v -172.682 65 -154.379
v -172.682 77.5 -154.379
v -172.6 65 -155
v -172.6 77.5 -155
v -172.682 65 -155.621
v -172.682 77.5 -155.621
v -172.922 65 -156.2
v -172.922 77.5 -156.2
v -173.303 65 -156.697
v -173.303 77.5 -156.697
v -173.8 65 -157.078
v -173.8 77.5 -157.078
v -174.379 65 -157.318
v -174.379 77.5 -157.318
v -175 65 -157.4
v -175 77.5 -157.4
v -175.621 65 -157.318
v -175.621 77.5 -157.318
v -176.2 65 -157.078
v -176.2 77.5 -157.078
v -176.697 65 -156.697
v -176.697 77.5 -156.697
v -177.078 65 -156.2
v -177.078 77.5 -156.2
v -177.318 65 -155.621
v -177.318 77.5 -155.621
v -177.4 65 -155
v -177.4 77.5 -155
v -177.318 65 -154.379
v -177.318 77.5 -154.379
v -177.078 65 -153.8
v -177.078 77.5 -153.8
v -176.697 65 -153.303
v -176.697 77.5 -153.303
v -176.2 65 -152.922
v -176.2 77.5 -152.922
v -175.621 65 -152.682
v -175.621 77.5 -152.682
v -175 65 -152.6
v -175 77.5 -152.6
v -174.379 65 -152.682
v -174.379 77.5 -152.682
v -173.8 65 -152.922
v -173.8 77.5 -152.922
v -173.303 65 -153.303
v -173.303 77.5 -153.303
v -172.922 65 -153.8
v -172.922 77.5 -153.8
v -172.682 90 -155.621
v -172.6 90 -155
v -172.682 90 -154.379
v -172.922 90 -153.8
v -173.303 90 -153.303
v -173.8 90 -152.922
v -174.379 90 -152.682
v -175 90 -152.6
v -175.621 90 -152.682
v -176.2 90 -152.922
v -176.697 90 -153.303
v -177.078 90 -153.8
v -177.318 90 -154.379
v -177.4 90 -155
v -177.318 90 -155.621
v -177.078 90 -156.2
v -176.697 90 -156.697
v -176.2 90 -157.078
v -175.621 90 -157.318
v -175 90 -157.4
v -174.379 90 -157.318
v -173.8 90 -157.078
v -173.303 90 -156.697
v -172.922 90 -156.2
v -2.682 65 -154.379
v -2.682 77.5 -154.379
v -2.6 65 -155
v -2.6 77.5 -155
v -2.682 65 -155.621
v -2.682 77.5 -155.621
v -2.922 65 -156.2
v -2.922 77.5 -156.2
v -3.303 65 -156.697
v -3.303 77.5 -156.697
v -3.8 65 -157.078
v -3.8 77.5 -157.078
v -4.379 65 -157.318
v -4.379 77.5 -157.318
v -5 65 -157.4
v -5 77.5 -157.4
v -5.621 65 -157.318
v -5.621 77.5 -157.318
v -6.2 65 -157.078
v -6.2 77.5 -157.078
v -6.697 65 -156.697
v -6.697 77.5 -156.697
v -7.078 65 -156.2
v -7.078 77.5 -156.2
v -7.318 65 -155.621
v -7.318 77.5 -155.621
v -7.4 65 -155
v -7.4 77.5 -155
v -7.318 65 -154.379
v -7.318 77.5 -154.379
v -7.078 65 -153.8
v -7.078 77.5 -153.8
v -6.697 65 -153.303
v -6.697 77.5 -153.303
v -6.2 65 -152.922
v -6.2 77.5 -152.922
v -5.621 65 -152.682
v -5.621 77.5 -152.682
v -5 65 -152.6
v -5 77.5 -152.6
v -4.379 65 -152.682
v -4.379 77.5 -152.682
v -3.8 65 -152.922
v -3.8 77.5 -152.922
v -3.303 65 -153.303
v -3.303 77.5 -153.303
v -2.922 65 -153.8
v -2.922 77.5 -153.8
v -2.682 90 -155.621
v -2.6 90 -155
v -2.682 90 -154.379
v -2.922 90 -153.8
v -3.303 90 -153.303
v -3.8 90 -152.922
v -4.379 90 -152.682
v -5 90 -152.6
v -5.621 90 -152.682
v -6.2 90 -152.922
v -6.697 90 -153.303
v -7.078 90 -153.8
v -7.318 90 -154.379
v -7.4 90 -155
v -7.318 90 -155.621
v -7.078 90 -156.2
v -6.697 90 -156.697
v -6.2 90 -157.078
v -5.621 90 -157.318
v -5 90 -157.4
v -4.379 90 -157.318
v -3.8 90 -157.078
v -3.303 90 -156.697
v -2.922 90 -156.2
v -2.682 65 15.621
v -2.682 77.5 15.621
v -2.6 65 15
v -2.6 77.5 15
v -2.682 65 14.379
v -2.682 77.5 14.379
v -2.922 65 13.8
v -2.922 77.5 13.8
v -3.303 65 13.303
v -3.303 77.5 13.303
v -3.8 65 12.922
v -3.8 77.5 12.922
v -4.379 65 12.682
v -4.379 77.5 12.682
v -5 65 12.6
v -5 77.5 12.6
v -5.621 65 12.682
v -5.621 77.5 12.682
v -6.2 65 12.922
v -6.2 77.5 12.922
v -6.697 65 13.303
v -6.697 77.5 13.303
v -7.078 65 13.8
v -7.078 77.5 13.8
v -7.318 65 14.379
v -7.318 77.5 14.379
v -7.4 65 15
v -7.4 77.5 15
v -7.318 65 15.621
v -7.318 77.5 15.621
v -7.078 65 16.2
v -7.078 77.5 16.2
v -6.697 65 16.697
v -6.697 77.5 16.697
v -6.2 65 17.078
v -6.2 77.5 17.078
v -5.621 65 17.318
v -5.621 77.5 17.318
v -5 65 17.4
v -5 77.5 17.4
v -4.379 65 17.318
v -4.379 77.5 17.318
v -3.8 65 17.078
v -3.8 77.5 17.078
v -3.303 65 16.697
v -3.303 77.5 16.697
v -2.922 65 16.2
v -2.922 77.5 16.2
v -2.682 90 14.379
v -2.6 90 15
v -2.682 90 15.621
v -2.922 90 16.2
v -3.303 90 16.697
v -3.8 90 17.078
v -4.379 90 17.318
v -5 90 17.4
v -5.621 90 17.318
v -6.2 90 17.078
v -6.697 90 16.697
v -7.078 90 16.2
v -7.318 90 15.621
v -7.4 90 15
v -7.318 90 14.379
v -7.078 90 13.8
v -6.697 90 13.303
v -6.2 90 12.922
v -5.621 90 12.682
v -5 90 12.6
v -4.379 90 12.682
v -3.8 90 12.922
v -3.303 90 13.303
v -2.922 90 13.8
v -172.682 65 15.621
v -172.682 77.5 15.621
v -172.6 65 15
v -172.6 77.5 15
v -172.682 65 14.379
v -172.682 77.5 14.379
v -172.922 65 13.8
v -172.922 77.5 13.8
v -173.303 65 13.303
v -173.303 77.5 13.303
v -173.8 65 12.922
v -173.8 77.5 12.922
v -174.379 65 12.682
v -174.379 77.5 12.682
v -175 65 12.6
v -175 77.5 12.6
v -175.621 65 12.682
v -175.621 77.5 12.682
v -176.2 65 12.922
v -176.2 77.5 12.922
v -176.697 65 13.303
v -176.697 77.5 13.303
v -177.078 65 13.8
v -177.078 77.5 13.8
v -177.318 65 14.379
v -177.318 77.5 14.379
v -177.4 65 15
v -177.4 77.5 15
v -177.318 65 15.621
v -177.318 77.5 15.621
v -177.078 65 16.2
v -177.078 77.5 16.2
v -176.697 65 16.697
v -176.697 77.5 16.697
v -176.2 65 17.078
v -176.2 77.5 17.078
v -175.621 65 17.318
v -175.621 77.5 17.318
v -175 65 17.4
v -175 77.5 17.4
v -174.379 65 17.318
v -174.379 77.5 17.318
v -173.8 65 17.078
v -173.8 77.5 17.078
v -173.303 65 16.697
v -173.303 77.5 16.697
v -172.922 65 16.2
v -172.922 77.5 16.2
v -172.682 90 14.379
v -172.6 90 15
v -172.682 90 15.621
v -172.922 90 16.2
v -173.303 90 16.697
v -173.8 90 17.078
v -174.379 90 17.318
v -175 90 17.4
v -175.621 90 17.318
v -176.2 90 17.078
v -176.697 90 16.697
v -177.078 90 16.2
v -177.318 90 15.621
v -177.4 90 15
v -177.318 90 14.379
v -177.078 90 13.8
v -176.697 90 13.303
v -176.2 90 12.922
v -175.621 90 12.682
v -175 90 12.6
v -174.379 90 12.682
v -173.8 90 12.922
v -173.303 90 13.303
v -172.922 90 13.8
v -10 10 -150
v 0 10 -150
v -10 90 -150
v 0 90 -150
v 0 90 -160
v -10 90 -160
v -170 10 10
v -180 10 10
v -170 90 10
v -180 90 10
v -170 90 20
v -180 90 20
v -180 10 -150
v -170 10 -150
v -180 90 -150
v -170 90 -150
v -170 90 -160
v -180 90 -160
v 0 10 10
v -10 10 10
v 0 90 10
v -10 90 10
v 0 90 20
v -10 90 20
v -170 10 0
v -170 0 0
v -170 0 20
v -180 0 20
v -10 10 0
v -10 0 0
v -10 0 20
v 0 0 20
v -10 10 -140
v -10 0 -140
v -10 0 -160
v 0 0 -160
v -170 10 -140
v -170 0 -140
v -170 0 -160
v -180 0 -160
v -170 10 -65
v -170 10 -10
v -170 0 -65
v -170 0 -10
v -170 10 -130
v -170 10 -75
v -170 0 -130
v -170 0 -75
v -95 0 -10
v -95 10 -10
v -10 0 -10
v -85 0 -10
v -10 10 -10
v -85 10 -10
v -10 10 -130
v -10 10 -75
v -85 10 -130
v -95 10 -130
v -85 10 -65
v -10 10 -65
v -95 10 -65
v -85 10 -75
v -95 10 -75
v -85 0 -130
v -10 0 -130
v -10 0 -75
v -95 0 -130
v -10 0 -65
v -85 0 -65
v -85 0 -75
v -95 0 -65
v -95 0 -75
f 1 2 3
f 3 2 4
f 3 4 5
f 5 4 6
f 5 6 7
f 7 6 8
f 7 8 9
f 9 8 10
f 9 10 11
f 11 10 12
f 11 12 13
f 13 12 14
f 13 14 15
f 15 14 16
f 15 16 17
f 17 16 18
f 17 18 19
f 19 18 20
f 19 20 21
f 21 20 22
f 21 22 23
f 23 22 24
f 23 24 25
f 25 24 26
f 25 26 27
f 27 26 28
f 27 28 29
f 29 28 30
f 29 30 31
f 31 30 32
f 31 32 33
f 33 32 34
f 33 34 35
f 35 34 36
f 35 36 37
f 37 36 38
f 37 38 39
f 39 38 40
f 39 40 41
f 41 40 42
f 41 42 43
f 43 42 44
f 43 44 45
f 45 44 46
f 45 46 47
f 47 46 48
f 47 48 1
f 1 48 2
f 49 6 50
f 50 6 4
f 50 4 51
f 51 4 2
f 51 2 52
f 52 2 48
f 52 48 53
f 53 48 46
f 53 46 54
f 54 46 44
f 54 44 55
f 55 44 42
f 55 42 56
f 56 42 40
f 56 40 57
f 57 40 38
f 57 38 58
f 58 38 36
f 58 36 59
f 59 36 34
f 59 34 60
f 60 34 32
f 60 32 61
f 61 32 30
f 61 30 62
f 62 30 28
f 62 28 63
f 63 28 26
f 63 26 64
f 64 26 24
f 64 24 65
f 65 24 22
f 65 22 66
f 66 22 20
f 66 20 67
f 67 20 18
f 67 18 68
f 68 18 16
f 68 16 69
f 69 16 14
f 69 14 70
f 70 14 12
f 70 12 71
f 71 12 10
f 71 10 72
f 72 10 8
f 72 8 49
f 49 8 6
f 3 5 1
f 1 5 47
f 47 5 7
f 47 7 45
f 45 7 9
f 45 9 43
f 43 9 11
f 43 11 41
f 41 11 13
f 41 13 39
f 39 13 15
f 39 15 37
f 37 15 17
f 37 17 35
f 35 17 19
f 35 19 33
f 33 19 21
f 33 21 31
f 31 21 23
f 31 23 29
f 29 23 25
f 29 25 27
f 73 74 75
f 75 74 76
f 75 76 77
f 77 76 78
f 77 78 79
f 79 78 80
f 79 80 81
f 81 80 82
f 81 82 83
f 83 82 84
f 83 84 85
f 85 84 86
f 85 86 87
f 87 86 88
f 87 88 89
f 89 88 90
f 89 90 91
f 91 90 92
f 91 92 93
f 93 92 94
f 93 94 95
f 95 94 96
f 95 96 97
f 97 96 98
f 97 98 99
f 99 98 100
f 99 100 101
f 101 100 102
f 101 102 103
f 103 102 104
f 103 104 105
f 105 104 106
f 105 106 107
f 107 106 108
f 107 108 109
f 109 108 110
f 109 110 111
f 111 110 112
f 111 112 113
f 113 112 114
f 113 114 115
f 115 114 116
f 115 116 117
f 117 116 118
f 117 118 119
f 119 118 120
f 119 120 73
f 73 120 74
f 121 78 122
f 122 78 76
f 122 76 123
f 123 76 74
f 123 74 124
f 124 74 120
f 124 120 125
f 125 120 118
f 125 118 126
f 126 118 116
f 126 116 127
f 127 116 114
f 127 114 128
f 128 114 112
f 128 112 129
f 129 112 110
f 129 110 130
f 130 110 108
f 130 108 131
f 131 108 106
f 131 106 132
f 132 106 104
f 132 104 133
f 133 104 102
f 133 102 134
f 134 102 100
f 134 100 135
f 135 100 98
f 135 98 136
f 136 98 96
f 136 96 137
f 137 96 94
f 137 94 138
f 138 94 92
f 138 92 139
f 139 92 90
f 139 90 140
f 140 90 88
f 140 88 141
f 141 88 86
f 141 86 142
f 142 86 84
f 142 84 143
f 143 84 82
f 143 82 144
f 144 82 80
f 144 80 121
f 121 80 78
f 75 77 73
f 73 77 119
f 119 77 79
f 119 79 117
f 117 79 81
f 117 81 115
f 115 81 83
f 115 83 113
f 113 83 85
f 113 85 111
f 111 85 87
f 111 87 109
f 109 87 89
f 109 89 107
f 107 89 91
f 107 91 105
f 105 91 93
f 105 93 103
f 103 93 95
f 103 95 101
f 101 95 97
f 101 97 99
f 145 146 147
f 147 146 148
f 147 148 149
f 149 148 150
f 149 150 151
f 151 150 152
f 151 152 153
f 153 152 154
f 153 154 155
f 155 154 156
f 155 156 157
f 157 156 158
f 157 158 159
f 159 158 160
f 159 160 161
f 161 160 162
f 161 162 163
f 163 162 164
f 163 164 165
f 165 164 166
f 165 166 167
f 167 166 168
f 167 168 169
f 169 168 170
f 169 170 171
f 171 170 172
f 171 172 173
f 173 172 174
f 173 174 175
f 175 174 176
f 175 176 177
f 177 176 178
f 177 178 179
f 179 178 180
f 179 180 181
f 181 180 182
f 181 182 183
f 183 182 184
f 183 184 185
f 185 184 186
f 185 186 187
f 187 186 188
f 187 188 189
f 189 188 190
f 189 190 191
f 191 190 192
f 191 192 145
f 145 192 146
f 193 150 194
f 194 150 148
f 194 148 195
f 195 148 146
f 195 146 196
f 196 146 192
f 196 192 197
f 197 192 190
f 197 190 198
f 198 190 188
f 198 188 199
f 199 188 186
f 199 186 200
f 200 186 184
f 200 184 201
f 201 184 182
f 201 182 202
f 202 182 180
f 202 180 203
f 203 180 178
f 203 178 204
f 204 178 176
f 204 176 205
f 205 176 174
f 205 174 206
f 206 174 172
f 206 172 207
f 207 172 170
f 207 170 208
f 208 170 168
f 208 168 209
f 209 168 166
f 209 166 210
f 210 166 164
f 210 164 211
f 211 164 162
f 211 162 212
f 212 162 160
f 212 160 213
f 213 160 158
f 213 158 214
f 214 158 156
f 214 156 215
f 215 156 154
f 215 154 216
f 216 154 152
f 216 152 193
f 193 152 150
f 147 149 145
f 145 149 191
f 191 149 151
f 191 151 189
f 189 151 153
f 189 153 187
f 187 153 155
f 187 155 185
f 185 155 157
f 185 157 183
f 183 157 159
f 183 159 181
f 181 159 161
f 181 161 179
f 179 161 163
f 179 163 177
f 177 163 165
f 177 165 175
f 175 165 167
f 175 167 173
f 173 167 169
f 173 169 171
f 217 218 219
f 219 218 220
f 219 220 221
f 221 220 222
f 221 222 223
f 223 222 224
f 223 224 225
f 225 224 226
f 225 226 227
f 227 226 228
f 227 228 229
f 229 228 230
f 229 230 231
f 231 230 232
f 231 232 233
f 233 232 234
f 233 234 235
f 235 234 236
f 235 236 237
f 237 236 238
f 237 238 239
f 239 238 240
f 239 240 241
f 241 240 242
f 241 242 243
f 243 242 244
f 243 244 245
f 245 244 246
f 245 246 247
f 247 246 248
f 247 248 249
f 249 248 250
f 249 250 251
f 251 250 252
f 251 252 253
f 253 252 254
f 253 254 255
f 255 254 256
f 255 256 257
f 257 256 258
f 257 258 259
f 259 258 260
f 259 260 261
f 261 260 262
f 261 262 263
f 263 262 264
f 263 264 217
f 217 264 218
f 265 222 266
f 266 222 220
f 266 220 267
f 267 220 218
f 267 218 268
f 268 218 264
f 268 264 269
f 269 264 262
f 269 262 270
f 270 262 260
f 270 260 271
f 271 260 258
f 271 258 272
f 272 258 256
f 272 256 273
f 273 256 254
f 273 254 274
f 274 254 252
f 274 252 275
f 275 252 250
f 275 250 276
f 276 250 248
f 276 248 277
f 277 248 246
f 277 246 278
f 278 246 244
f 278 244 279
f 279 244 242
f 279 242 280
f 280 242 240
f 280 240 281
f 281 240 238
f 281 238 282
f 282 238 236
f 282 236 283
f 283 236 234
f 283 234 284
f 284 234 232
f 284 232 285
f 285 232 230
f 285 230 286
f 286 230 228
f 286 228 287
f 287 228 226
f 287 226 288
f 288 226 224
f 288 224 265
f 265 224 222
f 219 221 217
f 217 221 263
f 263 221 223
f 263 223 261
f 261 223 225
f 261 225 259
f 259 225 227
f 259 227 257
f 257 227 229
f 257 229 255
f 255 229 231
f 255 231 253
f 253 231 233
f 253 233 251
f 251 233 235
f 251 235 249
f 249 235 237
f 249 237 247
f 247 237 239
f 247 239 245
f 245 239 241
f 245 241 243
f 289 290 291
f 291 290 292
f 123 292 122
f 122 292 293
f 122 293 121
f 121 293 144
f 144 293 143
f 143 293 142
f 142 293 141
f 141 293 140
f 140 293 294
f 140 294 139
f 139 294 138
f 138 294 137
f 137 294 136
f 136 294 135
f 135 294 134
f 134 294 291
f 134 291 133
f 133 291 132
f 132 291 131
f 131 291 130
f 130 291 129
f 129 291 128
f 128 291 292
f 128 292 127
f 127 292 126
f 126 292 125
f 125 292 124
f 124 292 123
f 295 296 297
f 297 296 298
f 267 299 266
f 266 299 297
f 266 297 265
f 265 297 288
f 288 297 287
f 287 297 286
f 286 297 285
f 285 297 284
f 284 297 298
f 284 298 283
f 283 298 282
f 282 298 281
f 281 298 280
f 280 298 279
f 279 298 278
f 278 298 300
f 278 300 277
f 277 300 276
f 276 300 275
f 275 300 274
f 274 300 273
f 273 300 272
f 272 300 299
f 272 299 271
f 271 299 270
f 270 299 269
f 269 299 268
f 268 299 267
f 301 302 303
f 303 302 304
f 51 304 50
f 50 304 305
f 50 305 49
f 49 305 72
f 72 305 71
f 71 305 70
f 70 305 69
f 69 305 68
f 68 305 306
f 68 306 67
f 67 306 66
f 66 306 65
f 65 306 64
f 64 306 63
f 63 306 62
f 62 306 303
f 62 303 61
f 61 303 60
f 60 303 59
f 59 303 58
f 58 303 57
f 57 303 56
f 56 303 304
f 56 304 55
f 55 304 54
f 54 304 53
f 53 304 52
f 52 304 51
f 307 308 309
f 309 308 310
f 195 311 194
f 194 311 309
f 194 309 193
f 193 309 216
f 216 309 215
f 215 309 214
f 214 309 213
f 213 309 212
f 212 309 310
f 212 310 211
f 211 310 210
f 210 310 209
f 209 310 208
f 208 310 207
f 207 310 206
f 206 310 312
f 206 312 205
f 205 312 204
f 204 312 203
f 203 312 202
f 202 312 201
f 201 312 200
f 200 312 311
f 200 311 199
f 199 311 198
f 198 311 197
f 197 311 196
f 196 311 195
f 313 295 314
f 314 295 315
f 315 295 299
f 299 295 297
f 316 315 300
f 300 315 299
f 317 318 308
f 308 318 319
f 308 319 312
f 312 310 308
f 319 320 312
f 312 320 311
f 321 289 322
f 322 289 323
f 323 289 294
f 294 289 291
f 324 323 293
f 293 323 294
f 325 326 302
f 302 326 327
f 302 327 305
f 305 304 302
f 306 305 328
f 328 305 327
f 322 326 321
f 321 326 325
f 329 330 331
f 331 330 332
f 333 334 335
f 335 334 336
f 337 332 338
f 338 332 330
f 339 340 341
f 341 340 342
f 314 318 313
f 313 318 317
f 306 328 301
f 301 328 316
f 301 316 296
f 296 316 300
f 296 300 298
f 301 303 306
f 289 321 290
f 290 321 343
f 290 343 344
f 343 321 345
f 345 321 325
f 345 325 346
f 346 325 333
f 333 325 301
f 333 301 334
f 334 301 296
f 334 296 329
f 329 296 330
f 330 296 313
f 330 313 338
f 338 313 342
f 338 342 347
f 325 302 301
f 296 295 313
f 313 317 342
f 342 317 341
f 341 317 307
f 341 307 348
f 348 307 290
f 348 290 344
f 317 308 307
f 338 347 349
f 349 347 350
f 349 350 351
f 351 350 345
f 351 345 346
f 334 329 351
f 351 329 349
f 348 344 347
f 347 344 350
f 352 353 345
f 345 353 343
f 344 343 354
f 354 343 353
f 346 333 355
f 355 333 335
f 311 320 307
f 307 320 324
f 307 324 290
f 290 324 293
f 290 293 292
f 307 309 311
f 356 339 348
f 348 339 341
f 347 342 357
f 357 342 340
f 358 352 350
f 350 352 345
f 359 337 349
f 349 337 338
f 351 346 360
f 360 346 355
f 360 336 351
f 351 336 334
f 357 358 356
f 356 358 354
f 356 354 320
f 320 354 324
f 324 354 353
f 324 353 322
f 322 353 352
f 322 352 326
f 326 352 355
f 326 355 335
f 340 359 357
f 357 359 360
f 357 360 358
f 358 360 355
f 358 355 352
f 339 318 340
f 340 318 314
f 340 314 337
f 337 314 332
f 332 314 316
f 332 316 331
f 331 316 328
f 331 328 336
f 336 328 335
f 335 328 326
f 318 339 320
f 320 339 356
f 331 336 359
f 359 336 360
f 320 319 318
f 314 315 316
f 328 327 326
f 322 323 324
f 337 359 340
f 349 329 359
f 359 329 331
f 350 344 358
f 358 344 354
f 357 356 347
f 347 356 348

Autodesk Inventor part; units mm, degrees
ref_plane "YZ Plane" through (0, 0, 0) normal (1, 0, 0) x (0, 1, 0)
ref_plane "XZ Plane" through (0, 0, 0) normal (0, 1, 0) x (-1, 0, 0)
ref_plane "XY Plane" through (0, 0, 0) normal (0, 0, 1) x (1, 0, 0)
sketch "Sketch1" plane through (0, 0, 0) normal (0, 1, 0) x (-1, 0, 0)
  line L0 (0, 0) -> (180, 0)
  line L1 (180, 0) -> (180, -140)
  line L2 (180, -140) -> (0, -140)
  line L3 (0, -140) -> (0, 0)
  line L4 (0, 0) -> (0, -10)
  line L5 (0, -10) -> (10, -10)
  line L6 (180, -140) -> (170, -140)
  line L7 (170, -140) -> (170, -130)
  line L8 (170, -130) -> (10, -130)
  line L9 (10, -130) -> (10, -10)
  line L10 (10, -10) -> (170, -10)
  line L11 (170, -10) -> (170, -130)
  line L12 (90, -130) -> (95, -130)
  line L13 (95, -130) -> (85, -130)
  line L14 (85, -130) -> (85, -10)
  line L15 (85, -10) -> (95, -10)
  line L16 (95, -10) -> (95, -130)
  line L17 (170, -70) -> (170, -75)
  line L18 (170, -75) -> (10, -75)
  line L19 (10, -75) -> (10, -65)
  line L20 (10, -65) -> (170, -65)
  line L21 (170, -65) -> (170, -75)
  dimension "d0" = 180
  dimension "d1" = 140
  dimension "d2" = 10
  dimension "d3" = 10
  dimension "d4" = 10
  dimension "d5" = 10
  dimension "d6" = 5
  dimension "d7" = 10
  dimension "d8" = 5
  dimension "d9" = 10
extrude "Extrusion1" add sketch "Sketch1" along normal blind 10 contours L0 L1 L2 L7 L11 L10 L5 L3 | L5 L9 L8 L7 L2 L3 | L20 L14 L18 L9 | L10 L16 L20 L14 | L20 L16 L18 L14 | L8 L14 L18 L16 | L18 L16 L20 L11
sketch "Sketch2" plane through (0, 0, -140) normal (0, 0, -1) x (-1, 0, 0)
  line L0 (180, 0) -> (0, 0) projected
  line L1 (170, 0) -> (170, 10) projected
  line L2 (180, 0) -> (170, 0)
  line L3 (170, 0) -> (170, 10)
  line L4 (170, 10) -> (180, 10)
  line L5 (180, 10) -> (180, 0)
  line L6 (10, 0) -> (10, 10) projected
  line L7 (0, 0) -> (10, 0)
  line L8 (10, 0) -> (10, 10)
  line L9 (10, 10) -> (0, 10)
  line L10 (0, 10) -> (0, 0)
  dimension "d12" = 10
  dimension "d13" = 10
  dimension "d14" = 10
extrude "Extrusion2" add sketch "Sketch2" along normal blind 20
sketch "Sketch3" plane through (-180, 0, 0) normal (0, 0, 1) x (1, 0, 0)
  line L0 (0, 10) -> (10, 10) projected
  line L1 (85, 0) -> (10, 0) projected
  line L2 (0, 10) -> (10, 10)
  line L3 (10, 10) -> (10, 0)
  line L4 (10, 0) -> (0, 0)
  line L5 (0, 0) -> (0, 10)
  line L6 (180, 0) -> (180, 10) projected
  line L7 (170, 0) -> (95, 0) projected
  line L8 (180, 10) -> (170, 10)
  line L9 (170, 10) -> (170, 0)
  line L10 (170, 0) -> (180, 0)
  line L11 (180, 0) -> (180, 10)
  dimension "d17" = 10
extrude "Extrusion3" add sketch "Sketch3" along normal blind 20
sketch "Sketch4" plane through (0, 10, 0) normal (0, 1, 0) x (1, 0, 0)
  line L0 (-180, -20) -> (-180, 160) projected
  line L1 (-170, 0) -> (-170, -20) projected
  line L2 (-180, -20) -> (-170, -20)
  line L3 (-170, -20) -> (-170, -10)
  line L4 (-170, -10) -> (-180, -10)
  line L5 (-180, -10) -> (-180, -20)
  line L6 (-170, 140) -> (-170, 160) projected
  line L7 (-180, 160) -> (-170, 160)
  line L8 (-170, 160) -> (-170, 150)
  line L9 (-170, 150) -> (-180, 150)
  line L10 (-180, 150) -> (-180, 160)
  line L11 (-10, 160) -> (0, 160) projected
  line L12 (0, 160) -> (0, -20) projected
  line L13 (-10, 160) -> (0, 160)
  line L14 (0, 160) -> (0, 150)
  line L15 (0, 150) -> (-10, 150)
  line L16 (-10, 150) -> (-10, 160)
  line L17 (-10, -20) -> (0, -20) projected
  line L18 (-10, 0) -> (-10, -20) projected
  line L19 (0, -20) -> (-10, -20)
  line L20 (-10, -20) -> (-10, -15)
  line L21 (0, -15) -> (0, -20)
  line L22 (0, -20) -> (0, 160) projected
  line L23 (-10, 0) -> (-10, -20) projected
  line L24 (0, -20) -> (-10, -20)
  line L25 (-10, -20) -> (-10, -10)
  line L26 (-10, -10) -> (0, -10)
  line L27 (0, -10) -> (0, -20)
  point P0 (0, 0)
  dimension "d20" = 10
  dimension "d21" = 10
  dimension "d22" = 10
  dimension "d50" = 10
extrude "Extrusion4" add sketch "Sketch4" along normal blind 80
sketch "Sketch7" plane through (0, 90, 0) normal (0, 1, 0) x (1, 0, 0)
  line L0 (-10, -20) -> (0, -20) projected
  line L1 (-5, -20) -> (-5, -15)
  line L2 (0, 160) -> (-10, 160) projected
  line L3 (-5, 160) -> (-5, 155)
  circle A0 centre (-5, 155) radius 2.4
  circle A1 centre (-5, -15) radius 2.4
  circle A2 centre (-175, 155) radius 2.4
  circle A3 centre (-175, -15) radius 2.4
  point P0 (0, 0)
  dimension "d40" = 5
  dimension "d41" = 5
  dimension "d42" = 4.8
  dimension "d47" = 4.8
  dimension "d51" = 4.8
  dimension "d52" = 4.8
extrude "Extrusion7" cut sketch "Sketch7" against normal blind 25
properties part number "Raket_Holder"
